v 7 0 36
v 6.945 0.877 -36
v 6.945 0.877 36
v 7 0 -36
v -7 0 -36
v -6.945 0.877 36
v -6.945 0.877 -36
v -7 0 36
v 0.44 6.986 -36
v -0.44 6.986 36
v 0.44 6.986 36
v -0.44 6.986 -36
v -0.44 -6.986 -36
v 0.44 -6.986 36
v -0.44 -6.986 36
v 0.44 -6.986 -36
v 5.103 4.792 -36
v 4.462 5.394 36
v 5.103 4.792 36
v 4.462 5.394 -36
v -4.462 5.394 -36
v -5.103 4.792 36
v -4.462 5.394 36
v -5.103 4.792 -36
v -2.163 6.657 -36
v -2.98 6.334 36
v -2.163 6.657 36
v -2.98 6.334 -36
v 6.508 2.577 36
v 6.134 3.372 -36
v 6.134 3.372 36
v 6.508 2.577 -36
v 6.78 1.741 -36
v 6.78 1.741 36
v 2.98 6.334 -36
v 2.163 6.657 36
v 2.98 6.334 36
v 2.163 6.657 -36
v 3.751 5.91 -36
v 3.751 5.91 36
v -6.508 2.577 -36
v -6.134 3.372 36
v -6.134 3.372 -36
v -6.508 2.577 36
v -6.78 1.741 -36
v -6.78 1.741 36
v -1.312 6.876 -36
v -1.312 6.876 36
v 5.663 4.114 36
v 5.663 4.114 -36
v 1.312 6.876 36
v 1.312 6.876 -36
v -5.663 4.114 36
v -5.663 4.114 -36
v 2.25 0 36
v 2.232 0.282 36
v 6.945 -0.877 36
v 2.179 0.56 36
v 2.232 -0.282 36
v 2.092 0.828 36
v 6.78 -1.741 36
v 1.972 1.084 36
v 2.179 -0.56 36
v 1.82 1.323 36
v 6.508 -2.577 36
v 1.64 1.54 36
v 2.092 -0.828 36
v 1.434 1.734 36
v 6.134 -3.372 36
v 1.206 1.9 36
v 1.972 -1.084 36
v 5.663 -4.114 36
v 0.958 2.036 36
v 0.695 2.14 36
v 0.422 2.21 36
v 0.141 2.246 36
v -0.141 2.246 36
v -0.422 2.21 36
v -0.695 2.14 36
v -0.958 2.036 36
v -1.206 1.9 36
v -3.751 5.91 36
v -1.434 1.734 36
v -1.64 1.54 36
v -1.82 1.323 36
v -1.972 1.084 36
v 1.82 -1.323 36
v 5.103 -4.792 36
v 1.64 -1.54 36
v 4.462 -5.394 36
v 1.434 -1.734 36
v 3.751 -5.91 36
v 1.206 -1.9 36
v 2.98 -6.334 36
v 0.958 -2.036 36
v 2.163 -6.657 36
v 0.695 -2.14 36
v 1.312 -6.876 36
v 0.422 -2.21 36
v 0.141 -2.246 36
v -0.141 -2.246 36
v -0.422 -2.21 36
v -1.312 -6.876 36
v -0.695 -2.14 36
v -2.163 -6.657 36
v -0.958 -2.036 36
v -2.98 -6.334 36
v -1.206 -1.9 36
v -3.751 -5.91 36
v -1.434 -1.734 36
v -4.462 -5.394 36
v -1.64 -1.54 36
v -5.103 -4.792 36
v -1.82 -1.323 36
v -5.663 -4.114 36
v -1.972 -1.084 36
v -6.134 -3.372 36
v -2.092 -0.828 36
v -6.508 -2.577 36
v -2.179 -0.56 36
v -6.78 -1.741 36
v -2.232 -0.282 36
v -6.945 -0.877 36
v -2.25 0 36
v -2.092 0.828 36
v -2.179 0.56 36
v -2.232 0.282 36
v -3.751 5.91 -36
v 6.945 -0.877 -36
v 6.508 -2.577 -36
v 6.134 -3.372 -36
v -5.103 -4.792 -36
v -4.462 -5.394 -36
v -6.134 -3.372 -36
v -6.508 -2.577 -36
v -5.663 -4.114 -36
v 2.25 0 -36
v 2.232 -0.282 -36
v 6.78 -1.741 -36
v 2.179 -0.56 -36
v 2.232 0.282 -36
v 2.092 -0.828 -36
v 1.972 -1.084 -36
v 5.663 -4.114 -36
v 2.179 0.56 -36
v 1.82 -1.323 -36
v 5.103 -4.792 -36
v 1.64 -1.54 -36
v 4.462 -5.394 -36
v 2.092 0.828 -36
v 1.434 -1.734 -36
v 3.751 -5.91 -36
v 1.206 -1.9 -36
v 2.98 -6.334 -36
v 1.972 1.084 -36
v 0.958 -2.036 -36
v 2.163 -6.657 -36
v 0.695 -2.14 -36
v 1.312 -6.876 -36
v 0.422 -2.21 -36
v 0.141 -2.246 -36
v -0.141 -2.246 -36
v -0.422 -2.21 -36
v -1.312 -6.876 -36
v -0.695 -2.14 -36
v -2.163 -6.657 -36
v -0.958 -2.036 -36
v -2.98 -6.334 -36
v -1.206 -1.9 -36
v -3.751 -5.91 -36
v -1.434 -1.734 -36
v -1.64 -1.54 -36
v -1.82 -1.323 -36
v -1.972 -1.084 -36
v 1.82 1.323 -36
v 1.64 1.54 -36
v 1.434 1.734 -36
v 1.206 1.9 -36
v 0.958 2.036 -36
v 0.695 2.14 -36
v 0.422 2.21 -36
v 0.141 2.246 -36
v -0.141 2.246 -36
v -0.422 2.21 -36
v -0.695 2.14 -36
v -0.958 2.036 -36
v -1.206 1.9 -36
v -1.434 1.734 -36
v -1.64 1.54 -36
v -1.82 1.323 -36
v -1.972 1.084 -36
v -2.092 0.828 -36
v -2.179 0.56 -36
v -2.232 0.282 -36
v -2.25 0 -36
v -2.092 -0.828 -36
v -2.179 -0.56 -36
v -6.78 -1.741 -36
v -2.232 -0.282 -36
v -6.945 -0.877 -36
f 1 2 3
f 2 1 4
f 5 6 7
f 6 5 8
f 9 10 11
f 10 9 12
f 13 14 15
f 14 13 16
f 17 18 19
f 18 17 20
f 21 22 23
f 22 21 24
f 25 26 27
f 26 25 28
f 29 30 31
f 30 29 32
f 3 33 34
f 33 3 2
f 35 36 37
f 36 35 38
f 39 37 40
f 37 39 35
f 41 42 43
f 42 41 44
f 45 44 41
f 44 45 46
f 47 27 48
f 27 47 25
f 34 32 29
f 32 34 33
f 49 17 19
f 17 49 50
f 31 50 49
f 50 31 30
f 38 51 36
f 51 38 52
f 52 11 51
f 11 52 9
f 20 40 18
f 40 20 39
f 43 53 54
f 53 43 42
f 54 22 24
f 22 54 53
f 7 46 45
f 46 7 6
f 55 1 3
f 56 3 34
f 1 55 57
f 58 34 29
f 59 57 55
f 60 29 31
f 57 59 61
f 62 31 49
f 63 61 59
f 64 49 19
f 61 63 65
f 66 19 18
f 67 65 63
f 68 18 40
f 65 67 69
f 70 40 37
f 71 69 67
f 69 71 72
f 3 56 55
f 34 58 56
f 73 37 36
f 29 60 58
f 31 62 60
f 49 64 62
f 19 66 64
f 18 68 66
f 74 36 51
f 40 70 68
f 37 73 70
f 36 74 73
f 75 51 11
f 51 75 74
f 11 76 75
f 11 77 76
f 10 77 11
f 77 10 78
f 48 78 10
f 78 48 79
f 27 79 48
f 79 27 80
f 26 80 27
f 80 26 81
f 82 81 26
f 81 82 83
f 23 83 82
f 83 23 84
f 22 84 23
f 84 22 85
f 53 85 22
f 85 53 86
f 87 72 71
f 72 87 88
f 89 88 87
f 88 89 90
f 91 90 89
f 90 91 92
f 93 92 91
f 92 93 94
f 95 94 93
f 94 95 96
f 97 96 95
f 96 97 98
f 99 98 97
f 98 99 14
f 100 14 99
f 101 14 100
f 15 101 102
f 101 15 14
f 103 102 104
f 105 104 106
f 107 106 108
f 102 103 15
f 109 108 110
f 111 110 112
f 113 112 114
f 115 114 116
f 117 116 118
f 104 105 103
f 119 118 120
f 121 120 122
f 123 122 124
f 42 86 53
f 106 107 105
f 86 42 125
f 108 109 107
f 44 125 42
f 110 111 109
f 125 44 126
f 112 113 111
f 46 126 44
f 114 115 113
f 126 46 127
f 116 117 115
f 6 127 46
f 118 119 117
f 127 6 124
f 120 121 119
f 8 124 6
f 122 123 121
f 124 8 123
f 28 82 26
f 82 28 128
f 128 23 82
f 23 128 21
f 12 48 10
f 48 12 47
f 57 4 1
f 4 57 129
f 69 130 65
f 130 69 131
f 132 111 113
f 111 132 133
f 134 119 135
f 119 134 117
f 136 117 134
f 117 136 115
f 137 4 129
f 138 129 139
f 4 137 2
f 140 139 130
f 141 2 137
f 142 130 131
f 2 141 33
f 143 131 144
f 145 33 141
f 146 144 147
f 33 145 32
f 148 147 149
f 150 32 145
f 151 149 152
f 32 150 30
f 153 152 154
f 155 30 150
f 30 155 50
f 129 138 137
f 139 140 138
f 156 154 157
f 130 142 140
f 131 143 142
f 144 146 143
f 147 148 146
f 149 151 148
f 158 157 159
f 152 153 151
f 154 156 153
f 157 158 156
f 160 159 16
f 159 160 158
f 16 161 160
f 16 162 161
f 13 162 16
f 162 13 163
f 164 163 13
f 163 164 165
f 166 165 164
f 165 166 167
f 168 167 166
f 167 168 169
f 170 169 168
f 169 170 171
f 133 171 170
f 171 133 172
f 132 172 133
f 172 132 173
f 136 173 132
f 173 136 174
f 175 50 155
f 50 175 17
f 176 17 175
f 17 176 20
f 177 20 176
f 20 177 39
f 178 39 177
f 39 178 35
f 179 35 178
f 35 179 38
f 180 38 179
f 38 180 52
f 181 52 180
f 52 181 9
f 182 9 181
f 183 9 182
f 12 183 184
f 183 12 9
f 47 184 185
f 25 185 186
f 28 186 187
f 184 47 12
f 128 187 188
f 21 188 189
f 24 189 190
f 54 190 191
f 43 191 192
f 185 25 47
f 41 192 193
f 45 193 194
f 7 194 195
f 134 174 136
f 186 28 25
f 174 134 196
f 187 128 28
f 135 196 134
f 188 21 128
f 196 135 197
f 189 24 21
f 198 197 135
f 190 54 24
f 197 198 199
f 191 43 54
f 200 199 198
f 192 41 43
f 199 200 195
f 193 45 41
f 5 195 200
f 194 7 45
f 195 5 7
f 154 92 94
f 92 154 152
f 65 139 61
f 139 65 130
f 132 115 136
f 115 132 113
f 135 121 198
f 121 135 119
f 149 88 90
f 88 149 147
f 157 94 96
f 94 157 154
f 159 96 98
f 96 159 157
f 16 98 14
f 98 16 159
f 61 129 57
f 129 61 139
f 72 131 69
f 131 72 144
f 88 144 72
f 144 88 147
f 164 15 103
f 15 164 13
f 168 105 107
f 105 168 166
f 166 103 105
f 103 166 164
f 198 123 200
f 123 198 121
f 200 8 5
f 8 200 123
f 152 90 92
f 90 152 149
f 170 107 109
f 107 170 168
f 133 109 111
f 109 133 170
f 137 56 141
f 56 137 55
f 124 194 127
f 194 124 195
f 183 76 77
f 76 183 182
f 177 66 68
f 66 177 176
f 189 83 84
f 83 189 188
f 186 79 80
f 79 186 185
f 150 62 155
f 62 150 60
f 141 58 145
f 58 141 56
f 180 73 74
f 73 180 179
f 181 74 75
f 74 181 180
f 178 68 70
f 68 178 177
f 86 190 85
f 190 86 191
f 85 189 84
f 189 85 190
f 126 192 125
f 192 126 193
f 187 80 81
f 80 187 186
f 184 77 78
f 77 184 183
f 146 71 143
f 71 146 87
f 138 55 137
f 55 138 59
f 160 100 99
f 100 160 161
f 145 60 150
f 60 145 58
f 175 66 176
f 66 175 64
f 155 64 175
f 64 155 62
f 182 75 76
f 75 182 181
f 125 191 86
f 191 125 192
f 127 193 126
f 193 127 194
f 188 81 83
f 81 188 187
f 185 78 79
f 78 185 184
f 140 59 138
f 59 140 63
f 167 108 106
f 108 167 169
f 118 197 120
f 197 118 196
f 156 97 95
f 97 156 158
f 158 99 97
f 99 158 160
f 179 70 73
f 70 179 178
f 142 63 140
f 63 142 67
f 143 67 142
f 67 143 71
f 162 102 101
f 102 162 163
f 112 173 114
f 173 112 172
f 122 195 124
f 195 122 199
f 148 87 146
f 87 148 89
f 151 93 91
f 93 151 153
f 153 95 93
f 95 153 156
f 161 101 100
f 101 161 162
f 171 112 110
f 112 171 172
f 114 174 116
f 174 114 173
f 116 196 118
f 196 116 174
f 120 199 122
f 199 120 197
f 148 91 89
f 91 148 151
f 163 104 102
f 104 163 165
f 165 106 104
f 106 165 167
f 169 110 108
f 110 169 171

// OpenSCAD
$fn = 50;


difference() {
	union() {
		translate(v = [0, 0, -36.0000000000]) {
			cylinder(h = 72, r = 7.0000000000);
		}
	}
	union() {
		translate(v = [0, 0, -100.0000000000]) {
			cylinder(h = 200, r = 2.2500000000);
		}
	}
}
